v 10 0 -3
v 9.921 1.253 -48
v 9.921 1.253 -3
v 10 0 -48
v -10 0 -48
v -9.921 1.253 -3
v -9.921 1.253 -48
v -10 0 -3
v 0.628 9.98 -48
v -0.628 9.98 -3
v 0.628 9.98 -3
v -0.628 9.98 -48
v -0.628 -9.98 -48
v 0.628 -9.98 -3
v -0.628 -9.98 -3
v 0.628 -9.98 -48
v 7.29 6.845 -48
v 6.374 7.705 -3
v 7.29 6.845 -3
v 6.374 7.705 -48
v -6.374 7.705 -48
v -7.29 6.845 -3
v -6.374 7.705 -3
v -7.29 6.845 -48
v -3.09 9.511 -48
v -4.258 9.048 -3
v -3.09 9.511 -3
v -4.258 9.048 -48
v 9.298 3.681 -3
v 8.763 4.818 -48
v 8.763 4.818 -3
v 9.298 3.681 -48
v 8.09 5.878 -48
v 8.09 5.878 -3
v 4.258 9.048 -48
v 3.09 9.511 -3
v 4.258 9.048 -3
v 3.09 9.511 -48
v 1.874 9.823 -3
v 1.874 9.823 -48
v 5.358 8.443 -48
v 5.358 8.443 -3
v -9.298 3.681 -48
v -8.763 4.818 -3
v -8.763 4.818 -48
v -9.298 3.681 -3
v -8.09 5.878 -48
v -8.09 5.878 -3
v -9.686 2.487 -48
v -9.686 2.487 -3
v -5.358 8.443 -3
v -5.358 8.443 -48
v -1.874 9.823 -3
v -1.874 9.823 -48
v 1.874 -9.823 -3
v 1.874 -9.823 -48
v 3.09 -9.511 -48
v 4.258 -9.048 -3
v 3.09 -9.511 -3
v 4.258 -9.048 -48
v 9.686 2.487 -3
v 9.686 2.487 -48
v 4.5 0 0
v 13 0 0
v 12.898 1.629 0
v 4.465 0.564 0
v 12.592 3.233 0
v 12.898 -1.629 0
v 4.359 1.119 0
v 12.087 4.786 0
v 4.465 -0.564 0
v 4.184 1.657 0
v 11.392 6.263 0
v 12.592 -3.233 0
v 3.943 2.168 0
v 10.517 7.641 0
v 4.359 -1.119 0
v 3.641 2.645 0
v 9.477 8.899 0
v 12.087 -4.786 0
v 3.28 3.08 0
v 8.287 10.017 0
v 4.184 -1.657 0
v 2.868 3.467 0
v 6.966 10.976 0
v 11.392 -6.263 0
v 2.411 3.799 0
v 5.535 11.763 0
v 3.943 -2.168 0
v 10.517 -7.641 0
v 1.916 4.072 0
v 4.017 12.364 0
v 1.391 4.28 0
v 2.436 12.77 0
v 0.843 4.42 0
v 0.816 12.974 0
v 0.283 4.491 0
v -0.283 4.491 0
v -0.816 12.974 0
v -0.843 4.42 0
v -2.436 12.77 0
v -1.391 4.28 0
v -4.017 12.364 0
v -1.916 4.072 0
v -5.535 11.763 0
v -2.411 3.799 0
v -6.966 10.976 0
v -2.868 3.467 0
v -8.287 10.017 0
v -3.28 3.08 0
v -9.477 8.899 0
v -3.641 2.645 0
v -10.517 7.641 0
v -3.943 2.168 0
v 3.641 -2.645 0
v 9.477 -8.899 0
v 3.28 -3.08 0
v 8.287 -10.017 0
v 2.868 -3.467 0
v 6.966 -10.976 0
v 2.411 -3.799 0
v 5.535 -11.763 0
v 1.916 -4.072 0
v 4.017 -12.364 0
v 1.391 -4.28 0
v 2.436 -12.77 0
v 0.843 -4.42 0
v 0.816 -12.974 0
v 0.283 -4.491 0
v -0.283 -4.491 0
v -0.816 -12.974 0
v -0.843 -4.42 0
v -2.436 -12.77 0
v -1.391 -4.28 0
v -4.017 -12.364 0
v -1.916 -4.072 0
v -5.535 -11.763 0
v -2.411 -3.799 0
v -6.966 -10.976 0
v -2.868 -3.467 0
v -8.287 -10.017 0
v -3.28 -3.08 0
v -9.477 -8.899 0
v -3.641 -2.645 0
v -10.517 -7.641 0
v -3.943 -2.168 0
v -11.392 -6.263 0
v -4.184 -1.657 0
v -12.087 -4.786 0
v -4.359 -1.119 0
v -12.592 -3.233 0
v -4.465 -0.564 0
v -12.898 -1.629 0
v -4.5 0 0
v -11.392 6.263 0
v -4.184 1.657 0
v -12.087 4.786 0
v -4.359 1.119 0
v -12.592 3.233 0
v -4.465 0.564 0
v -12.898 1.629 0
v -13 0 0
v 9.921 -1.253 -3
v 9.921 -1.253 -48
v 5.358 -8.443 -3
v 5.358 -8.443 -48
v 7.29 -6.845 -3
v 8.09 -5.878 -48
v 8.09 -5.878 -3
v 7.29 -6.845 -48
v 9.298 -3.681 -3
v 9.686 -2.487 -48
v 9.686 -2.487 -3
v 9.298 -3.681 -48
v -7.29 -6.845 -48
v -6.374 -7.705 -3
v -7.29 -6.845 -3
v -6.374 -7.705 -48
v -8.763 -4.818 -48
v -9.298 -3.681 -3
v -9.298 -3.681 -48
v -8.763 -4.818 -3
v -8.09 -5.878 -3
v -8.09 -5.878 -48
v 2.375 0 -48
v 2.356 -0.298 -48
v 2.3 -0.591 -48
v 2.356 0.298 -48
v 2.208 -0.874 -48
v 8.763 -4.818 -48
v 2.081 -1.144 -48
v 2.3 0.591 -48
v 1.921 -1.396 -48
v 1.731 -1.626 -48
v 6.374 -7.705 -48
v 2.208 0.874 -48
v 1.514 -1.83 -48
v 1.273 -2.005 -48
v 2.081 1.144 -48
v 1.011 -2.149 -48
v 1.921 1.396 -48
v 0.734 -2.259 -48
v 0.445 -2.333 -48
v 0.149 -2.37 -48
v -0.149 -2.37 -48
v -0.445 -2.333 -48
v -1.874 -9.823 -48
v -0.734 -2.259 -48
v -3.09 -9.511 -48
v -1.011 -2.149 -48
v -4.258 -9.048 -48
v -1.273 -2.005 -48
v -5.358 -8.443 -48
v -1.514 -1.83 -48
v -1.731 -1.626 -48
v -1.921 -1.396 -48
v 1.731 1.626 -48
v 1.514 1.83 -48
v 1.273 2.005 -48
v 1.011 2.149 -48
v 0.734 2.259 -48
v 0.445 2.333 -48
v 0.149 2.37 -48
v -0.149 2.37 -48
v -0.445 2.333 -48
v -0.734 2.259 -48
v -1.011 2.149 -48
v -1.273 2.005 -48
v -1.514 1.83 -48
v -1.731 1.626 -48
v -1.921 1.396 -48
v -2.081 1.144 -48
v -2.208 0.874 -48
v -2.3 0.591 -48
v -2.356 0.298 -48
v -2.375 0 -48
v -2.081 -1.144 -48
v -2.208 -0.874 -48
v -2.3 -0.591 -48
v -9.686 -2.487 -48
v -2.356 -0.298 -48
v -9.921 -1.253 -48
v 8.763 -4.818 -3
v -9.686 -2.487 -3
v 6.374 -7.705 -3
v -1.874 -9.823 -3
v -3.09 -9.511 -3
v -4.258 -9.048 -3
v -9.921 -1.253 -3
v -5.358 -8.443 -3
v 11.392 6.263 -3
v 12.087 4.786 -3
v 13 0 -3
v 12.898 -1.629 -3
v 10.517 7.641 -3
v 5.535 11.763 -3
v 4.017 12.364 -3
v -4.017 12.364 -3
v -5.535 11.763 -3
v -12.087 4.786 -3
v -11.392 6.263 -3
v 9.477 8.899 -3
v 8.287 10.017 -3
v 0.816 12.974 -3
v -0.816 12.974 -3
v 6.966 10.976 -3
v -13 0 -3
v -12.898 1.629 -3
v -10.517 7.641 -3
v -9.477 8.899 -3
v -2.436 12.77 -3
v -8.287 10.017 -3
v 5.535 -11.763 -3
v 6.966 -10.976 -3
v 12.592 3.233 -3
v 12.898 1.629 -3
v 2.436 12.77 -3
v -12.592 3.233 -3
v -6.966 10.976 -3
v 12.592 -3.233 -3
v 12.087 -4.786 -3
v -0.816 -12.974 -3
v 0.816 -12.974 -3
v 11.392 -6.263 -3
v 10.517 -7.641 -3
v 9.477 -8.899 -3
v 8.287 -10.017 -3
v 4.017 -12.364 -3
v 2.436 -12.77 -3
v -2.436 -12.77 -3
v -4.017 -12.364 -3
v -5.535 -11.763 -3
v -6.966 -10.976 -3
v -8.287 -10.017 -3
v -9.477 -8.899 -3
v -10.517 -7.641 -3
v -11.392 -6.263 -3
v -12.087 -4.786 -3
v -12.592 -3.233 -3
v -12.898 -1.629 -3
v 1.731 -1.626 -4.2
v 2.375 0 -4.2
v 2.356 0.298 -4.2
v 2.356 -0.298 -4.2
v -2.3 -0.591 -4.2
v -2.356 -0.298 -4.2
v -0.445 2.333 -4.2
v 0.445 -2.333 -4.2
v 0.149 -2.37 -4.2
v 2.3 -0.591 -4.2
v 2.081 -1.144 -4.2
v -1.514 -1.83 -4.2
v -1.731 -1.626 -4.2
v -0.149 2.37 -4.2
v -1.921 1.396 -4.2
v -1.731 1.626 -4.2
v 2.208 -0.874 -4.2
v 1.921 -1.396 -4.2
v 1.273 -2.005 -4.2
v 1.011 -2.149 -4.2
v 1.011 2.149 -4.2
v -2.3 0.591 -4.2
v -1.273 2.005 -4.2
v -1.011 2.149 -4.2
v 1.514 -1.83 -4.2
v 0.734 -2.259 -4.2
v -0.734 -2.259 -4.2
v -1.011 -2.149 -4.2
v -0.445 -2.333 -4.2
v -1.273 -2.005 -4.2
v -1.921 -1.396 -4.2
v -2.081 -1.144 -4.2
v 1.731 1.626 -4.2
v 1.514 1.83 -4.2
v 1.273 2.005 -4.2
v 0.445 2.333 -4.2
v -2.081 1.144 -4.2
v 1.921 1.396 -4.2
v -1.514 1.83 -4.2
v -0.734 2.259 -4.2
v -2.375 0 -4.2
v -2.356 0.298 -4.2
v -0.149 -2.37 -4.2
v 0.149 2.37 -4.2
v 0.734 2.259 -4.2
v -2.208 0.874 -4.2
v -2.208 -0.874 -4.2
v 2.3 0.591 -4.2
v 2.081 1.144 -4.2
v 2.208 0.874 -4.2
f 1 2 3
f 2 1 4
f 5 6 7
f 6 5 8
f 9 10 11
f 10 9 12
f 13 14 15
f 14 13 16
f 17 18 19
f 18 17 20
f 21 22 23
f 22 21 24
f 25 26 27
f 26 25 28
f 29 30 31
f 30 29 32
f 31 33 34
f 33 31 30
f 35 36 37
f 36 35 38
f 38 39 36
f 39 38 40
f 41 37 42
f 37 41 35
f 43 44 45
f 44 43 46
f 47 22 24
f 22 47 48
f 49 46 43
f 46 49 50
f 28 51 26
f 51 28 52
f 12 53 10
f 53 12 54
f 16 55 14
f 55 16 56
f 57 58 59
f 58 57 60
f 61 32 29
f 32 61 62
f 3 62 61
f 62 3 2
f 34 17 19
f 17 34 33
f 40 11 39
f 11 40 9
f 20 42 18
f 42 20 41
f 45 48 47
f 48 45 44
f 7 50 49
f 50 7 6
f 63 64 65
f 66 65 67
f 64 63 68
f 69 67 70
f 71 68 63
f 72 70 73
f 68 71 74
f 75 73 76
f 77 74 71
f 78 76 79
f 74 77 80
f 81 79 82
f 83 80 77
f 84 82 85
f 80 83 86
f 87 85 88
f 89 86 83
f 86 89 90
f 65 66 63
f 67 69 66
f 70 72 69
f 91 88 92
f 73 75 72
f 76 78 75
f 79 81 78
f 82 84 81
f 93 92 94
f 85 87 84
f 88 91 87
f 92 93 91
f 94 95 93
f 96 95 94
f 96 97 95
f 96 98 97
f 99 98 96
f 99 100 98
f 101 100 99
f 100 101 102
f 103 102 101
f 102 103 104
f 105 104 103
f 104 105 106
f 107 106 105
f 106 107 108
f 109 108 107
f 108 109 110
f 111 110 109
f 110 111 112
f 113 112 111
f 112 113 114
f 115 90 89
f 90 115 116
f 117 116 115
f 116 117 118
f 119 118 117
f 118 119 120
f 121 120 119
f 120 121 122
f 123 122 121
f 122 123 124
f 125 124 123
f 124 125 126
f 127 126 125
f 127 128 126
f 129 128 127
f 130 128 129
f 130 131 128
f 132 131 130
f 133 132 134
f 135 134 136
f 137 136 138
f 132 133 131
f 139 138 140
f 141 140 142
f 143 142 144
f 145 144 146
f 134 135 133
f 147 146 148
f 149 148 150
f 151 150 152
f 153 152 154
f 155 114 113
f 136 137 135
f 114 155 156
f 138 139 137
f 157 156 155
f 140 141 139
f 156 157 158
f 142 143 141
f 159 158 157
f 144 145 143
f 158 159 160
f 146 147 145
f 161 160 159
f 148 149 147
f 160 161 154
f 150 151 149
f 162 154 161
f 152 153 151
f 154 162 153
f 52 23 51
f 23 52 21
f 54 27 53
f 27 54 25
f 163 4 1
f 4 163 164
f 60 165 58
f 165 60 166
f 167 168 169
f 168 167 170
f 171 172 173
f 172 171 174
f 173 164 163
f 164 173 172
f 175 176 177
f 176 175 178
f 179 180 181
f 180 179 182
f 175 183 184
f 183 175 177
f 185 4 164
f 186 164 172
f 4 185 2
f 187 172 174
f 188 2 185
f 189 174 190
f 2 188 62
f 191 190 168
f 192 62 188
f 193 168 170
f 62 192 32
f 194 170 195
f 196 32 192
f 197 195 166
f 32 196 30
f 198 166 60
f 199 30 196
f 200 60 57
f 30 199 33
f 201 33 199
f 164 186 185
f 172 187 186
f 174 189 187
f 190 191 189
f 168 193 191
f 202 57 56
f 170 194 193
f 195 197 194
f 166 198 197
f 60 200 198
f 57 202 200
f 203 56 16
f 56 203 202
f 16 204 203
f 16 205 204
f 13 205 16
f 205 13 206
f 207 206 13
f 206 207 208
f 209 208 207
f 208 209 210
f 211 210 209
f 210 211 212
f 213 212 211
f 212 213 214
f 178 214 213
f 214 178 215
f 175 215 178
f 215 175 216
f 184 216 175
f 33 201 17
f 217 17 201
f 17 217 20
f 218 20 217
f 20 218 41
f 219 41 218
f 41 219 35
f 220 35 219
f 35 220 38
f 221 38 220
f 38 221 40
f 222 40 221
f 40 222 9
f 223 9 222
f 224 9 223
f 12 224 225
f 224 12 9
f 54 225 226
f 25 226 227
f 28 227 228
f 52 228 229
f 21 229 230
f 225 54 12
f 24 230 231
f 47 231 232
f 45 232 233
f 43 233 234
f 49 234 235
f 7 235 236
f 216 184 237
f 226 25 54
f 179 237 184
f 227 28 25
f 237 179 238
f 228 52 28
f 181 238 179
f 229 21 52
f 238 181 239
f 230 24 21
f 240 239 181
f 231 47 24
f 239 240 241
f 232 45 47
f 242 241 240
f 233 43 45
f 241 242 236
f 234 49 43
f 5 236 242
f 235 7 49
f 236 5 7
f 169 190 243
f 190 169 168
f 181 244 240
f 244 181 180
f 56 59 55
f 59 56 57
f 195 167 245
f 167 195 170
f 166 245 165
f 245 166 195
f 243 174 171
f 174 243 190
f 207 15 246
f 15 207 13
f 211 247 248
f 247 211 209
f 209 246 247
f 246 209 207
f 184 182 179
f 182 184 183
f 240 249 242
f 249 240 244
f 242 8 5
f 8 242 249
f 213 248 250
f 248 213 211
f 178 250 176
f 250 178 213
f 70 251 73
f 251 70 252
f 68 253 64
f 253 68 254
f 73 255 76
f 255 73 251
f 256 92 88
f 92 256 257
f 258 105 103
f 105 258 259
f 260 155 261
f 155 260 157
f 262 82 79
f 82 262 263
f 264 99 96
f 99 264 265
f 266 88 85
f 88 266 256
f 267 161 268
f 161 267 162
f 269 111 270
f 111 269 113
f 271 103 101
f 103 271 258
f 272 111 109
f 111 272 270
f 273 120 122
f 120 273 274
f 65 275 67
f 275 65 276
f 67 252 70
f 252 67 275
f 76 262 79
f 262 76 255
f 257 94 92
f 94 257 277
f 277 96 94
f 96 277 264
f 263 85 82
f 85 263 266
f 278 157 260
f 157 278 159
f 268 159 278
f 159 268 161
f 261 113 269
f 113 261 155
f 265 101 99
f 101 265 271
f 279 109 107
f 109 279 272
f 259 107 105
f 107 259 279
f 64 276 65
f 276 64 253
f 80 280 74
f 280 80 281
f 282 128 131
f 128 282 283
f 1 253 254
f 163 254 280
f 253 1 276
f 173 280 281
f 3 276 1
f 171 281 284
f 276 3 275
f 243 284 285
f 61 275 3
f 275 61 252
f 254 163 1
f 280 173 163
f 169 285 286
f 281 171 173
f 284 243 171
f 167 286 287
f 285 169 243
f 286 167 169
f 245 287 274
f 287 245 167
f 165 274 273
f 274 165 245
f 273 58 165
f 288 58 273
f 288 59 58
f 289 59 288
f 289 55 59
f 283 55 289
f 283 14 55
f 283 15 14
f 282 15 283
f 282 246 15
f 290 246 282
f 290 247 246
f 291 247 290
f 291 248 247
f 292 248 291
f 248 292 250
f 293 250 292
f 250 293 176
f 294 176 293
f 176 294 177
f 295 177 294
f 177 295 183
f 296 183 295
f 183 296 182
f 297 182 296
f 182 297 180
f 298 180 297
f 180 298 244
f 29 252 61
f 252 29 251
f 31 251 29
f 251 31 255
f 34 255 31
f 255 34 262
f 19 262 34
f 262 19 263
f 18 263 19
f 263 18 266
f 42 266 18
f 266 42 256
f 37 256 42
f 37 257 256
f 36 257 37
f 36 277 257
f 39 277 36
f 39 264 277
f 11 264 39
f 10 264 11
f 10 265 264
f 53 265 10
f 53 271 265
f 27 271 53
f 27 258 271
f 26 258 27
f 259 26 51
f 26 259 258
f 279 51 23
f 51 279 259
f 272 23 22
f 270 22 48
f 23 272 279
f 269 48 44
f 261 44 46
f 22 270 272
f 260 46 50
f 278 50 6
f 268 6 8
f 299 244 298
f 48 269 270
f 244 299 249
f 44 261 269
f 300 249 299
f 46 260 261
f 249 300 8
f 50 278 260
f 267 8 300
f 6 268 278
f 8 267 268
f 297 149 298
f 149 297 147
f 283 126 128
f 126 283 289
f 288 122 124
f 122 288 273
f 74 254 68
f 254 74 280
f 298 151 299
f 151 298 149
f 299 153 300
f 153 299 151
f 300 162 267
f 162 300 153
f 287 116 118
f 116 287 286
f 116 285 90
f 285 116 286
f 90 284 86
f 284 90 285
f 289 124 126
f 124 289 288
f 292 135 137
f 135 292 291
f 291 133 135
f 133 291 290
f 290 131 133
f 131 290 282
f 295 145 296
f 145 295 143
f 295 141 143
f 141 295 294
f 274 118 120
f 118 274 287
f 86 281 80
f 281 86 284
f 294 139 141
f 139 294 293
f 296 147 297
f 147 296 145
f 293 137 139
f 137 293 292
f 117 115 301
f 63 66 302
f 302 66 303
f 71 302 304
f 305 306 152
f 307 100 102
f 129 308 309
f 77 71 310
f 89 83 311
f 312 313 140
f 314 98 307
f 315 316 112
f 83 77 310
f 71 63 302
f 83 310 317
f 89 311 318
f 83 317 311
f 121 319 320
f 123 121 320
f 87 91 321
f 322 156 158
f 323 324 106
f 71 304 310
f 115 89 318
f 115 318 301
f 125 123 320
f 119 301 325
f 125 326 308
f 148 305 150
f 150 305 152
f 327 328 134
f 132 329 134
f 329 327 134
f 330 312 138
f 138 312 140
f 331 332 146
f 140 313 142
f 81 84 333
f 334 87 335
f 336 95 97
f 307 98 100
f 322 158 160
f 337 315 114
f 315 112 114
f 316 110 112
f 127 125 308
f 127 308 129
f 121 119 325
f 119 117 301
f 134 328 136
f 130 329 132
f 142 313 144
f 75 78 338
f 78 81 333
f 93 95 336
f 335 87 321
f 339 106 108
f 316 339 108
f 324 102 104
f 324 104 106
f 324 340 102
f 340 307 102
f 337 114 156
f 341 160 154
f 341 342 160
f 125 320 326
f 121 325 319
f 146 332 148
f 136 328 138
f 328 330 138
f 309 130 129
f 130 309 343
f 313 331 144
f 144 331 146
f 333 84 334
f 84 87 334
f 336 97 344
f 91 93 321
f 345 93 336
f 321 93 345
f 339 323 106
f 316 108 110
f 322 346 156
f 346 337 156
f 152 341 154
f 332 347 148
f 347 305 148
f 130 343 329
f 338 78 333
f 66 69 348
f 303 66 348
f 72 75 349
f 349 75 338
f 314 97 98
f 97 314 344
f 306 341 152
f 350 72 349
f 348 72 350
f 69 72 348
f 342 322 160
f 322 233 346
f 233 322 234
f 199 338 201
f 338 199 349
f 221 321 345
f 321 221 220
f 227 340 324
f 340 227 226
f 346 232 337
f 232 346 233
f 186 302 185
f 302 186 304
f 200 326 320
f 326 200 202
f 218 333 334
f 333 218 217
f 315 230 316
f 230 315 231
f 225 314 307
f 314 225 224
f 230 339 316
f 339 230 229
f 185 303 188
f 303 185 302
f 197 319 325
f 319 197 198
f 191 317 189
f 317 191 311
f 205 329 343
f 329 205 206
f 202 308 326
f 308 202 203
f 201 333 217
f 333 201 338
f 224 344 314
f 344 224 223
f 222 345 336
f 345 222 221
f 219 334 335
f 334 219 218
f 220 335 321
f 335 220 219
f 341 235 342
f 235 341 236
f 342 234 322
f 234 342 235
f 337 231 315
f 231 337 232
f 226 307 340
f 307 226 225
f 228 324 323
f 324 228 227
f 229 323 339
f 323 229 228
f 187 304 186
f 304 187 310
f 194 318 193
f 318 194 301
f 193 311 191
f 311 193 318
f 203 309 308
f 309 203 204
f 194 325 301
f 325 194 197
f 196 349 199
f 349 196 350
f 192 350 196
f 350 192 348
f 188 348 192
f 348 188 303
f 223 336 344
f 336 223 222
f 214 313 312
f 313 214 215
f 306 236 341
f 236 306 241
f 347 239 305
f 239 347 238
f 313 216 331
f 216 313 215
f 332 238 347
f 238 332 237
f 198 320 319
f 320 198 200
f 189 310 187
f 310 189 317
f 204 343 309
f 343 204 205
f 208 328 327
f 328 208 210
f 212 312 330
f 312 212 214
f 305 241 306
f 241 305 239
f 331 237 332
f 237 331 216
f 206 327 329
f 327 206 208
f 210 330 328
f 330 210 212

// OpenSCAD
$fn = 50;


difference() {
	union() {
		translate(v = [0, 0, -48.0000000000]) {
			cylinder(h = 48, r = 10.0000000000);
		}
		translate(v = [0, 0, -3.0000000000]) {
			cylinder(h = 3, r = 13.0000000000);
		}
	}
	union() {
		translate(v = [0, 0, 0]) {
			rotate(a = [0, 0, 0]) {
				difference() {
					union() {
						#translate(v = [0, 0, -48.0000000000]) {
							cylinder(h = 48, r = 2.2500000000);
						}
						#translate(v = [0, 0, -4.2000000000]) {
							cylinder(h = 4.2000000000, r = 10.0000000000, r1 = 2.3750000000, r2 = 4.5000000000);
						}
						#translate(v = [0, 0, -48.0000000000]) {
							cylinder(h = 48, r = 2.3750000000);
						}
						#translate(v = [0, 0, -48.0000000000]) {
							cylinder(h = 48, r = 2.2500000000);
						}
					}
					union();
				}
			}
		}
	}
}
